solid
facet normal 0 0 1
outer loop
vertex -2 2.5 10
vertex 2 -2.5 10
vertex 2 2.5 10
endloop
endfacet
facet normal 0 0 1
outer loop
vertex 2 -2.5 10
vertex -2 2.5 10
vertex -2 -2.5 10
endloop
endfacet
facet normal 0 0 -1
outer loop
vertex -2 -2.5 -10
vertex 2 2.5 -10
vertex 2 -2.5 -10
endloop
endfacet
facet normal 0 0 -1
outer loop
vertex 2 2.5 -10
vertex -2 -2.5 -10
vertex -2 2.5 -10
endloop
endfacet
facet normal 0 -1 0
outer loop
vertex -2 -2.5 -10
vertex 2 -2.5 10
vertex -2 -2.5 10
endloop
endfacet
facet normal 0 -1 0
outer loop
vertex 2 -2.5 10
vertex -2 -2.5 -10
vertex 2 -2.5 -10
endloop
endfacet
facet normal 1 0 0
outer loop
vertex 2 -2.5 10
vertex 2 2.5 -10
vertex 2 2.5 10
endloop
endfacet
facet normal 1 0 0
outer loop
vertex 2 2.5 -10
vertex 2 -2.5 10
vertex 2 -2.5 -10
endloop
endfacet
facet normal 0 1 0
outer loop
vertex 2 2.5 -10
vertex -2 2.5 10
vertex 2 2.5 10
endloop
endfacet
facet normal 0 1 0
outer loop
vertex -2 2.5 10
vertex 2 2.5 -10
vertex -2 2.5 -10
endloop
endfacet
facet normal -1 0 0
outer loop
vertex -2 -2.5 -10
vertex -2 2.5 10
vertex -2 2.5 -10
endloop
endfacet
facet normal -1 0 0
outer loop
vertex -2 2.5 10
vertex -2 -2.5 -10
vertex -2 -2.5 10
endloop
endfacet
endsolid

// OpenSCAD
// Trigger block for the Nerf turret fire mechanism
// Export: F6 to render, then File > Export > Export as STL
// All dimensions in mm.

/* [Block] */
block_x = 4.0;   // width
block_y = 5.0;   // depth
block_z = 20.0;  // length

/* [Quality] */
$fn = 48;

cube([block_x, block_y, block_z], center = true);
